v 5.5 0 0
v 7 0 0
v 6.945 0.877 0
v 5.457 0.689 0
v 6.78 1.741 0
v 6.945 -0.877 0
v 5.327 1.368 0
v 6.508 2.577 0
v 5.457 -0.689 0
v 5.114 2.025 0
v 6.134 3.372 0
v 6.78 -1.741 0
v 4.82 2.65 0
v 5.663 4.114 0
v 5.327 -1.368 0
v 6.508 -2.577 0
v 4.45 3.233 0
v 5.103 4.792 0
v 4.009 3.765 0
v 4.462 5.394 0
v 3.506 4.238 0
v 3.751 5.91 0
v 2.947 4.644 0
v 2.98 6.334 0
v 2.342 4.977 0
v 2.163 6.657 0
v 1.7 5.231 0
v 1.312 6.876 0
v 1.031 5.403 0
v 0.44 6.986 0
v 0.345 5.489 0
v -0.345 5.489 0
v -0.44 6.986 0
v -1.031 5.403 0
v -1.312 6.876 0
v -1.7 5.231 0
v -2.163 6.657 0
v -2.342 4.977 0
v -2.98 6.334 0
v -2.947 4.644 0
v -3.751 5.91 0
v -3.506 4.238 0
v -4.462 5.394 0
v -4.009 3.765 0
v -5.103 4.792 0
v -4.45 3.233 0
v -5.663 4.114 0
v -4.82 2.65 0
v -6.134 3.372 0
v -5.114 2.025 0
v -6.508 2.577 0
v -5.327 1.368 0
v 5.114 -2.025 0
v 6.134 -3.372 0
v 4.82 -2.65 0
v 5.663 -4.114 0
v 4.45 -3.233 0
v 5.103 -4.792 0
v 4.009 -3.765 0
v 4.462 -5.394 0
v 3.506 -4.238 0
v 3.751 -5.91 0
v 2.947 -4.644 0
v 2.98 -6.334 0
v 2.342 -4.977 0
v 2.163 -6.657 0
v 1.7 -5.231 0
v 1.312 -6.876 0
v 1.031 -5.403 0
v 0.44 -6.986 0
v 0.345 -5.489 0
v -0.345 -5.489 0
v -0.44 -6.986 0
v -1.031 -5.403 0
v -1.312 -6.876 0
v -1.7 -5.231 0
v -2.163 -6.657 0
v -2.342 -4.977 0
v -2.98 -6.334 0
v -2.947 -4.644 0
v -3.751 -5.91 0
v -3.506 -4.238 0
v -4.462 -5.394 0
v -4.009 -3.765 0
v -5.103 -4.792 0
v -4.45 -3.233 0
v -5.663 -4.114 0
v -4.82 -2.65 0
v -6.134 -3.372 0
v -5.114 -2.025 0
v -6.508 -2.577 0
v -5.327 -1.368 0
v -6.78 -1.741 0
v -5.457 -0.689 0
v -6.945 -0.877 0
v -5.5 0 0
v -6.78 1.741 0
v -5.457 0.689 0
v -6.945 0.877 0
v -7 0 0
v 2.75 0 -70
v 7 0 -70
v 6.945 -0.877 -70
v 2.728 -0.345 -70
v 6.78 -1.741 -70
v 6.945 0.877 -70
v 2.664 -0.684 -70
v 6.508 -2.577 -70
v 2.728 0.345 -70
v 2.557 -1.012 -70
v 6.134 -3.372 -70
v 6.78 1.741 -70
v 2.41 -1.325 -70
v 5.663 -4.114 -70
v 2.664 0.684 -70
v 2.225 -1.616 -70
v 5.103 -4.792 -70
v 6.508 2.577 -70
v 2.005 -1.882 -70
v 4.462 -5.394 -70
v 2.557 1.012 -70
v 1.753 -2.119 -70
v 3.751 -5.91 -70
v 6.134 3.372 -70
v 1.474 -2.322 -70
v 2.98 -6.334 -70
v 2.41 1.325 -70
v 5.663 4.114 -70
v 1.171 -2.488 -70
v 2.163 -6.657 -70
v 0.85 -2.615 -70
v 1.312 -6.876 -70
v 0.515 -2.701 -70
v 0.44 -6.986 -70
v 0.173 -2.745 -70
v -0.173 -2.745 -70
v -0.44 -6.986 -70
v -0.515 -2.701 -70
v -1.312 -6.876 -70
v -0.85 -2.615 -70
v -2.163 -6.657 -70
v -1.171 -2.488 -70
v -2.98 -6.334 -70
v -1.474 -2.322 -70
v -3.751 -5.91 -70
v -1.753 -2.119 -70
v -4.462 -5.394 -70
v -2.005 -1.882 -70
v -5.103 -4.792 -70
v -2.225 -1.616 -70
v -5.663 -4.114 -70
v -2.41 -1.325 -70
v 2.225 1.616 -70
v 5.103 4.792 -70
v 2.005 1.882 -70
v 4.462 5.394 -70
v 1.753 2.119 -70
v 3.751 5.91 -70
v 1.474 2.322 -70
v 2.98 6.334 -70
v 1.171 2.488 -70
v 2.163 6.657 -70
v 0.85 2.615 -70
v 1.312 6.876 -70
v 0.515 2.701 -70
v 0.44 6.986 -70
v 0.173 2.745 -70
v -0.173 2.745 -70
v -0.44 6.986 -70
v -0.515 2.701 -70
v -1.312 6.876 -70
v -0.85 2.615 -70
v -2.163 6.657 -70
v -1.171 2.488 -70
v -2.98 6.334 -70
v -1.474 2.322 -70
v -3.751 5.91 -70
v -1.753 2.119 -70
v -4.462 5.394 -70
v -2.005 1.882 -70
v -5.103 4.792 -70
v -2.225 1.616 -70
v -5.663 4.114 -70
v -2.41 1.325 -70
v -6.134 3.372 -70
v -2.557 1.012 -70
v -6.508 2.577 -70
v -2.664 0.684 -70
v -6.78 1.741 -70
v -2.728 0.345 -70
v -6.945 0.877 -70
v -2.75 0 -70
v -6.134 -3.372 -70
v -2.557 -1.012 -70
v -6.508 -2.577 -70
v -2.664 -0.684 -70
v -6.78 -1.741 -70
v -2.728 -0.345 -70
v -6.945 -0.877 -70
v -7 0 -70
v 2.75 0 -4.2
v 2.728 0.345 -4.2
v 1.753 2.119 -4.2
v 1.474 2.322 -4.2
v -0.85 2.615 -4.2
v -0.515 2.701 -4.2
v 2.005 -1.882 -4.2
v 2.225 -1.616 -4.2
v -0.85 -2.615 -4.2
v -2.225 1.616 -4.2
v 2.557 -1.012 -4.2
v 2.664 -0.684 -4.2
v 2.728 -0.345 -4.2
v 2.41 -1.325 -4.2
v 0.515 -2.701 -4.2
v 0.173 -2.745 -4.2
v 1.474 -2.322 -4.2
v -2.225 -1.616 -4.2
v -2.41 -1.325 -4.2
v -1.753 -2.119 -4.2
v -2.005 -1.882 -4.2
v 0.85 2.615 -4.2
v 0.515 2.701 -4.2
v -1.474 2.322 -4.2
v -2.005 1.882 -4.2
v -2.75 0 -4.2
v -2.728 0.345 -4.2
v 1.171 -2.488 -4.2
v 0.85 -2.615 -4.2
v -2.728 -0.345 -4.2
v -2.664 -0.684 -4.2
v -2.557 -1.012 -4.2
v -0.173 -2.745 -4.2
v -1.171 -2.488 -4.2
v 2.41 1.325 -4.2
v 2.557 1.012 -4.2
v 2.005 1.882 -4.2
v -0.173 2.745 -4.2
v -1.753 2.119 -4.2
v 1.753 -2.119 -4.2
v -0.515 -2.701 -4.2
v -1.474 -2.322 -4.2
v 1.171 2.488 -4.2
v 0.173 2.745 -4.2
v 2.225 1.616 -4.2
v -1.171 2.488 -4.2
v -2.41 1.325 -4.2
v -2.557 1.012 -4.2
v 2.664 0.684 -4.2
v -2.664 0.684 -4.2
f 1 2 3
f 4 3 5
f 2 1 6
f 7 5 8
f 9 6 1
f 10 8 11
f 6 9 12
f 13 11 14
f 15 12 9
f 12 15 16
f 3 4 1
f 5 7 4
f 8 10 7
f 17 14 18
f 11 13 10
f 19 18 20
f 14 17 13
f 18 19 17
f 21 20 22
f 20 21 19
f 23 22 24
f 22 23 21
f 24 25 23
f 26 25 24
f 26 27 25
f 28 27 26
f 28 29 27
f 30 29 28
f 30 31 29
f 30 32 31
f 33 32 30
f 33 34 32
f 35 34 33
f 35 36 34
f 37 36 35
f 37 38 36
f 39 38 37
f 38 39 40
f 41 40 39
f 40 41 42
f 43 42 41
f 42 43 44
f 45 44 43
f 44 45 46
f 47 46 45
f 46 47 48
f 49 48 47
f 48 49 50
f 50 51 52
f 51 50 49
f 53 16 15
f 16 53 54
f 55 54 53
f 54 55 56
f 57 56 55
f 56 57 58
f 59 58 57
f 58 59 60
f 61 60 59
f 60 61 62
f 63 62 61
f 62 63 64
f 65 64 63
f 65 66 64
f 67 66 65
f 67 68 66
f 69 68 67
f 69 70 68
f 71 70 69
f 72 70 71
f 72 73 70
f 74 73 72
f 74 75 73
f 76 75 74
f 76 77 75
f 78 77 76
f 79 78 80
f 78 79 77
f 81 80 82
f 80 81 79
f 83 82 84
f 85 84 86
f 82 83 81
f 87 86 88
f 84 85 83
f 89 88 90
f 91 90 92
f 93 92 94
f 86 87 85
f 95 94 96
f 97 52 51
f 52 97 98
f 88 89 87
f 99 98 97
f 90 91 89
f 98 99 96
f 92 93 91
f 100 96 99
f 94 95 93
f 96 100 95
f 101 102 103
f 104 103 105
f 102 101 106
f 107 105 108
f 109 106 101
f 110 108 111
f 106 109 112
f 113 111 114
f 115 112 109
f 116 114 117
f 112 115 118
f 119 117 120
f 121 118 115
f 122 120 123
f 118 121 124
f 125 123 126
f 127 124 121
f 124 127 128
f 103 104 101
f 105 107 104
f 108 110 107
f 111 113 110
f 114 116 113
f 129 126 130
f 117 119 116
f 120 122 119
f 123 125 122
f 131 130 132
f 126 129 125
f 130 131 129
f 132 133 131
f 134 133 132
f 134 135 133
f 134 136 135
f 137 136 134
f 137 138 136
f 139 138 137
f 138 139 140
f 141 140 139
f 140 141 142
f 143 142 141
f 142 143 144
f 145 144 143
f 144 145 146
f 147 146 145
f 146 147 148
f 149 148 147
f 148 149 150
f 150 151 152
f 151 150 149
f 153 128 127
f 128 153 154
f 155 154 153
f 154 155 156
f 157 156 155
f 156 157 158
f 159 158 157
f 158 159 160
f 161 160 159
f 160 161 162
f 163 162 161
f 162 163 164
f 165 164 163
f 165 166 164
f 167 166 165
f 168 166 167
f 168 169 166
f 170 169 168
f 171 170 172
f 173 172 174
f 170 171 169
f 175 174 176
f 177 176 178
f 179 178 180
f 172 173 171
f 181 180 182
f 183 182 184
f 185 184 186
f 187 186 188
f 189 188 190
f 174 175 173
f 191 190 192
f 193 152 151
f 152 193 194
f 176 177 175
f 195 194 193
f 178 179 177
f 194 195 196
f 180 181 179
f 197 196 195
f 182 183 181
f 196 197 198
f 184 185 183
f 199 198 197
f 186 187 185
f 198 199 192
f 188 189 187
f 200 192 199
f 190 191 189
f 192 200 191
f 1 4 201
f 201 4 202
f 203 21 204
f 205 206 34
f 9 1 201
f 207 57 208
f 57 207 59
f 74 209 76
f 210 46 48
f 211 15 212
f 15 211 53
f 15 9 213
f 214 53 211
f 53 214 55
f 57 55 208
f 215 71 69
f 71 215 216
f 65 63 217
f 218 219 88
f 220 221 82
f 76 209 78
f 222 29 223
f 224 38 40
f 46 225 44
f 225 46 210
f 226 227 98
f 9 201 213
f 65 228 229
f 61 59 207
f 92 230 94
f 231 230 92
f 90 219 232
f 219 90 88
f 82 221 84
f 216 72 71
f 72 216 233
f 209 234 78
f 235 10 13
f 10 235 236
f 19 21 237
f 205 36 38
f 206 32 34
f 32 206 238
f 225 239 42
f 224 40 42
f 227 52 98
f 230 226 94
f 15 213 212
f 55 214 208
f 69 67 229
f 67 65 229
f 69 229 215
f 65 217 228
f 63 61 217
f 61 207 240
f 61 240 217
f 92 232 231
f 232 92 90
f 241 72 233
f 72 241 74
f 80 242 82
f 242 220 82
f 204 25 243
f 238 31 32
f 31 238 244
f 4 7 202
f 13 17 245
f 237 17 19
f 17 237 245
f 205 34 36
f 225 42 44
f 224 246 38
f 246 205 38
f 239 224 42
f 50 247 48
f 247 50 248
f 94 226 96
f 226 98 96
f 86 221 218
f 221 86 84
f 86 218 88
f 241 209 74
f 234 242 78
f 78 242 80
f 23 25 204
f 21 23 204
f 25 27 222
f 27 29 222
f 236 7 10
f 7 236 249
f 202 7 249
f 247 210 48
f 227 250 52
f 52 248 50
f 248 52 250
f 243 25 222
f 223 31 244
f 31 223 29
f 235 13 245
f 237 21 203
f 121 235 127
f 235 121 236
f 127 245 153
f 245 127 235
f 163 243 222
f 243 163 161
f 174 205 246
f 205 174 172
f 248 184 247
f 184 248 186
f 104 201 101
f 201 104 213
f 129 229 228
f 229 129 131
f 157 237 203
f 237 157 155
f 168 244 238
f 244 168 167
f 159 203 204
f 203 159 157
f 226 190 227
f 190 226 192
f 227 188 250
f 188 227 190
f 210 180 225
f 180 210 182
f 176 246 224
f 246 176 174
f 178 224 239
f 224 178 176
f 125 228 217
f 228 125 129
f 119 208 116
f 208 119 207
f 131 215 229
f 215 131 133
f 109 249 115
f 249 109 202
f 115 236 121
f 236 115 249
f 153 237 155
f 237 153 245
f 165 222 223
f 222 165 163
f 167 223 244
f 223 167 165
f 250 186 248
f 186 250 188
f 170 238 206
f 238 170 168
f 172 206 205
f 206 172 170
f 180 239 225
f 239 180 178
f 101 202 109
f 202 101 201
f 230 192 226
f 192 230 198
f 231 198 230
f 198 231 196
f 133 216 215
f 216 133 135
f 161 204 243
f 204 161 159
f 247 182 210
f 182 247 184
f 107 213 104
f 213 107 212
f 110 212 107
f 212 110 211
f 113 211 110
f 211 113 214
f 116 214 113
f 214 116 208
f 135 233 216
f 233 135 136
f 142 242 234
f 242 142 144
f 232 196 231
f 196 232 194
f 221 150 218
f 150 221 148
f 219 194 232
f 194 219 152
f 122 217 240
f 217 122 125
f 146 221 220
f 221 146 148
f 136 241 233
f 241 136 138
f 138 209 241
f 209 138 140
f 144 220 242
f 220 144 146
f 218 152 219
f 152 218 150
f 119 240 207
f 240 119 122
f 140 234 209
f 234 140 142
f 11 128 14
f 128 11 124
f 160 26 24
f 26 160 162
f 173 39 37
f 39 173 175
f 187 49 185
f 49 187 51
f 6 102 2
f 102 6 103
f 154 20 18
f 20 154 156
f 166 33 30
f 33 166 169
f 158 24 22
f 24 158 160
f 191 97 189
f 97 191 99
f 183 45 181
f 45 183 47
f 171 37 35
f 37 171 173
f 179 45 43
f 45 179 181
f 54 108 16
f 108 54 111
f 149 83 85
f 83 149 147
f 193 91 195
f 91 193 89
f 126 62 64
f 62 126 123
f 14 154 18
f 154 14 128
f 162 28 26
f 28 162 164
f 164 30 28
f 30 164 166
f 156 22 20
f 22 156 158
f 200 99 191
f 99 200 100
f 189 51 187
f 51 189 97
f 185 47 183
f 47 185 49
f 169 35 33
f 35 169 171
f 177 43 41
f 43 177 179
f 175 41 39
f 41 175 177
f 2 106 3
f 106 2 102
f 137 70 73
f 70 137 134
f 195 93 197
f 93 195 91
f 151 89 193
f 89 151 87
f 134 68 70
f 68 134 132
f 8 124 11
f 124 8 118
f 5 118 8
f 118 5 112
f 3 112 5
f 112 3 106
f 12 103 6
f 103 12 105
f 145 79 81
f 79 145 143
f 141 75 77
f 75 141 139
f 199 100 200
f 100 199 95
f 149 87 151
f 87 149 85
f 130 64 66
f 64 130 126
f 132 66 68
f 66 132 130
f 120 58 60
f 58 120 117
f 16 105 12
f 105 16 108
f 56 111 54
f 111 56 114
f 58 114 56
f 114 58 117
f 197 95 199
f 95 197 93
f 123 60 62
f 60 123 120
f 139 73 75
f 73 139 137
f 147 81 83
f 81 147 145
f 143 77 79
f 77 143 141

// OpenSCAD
$fn = 50;


difference() {
	union() {
		translate(v = [0, 0, -70.0000000000]) {
			cylinder(h = 70, r = 7.0000000000);
		}
		cylinder(h = 0, r = 17.0000000000);
	}
	union() {
		translate(v = [0, 0, 0]) {
			rotate(a = [0, 0, 0]) {
				difference() {
					union() {
						#translate(v = [0, 0, -70.0000000000]) {
							cylinder(h = 70, r = 2.2500000000);
						}
						#translate(v = [0, 0, -4.2000000000]) {
							cylinder(h = 4.2000000000, r1 = 2.7500000000, r2 = 5.5000000000);
						}
						#translate(v = [0, 0, -70.0000000000]) {
							cylinder(h = 70, r = 2.7500000000);
						}
						#translate(v = [0, 0, -70.0000000000]) {
							cylinder(h = 70, r = 2.2500000000);
						}
					}
					union();
				}
			}
		}
	}
}
